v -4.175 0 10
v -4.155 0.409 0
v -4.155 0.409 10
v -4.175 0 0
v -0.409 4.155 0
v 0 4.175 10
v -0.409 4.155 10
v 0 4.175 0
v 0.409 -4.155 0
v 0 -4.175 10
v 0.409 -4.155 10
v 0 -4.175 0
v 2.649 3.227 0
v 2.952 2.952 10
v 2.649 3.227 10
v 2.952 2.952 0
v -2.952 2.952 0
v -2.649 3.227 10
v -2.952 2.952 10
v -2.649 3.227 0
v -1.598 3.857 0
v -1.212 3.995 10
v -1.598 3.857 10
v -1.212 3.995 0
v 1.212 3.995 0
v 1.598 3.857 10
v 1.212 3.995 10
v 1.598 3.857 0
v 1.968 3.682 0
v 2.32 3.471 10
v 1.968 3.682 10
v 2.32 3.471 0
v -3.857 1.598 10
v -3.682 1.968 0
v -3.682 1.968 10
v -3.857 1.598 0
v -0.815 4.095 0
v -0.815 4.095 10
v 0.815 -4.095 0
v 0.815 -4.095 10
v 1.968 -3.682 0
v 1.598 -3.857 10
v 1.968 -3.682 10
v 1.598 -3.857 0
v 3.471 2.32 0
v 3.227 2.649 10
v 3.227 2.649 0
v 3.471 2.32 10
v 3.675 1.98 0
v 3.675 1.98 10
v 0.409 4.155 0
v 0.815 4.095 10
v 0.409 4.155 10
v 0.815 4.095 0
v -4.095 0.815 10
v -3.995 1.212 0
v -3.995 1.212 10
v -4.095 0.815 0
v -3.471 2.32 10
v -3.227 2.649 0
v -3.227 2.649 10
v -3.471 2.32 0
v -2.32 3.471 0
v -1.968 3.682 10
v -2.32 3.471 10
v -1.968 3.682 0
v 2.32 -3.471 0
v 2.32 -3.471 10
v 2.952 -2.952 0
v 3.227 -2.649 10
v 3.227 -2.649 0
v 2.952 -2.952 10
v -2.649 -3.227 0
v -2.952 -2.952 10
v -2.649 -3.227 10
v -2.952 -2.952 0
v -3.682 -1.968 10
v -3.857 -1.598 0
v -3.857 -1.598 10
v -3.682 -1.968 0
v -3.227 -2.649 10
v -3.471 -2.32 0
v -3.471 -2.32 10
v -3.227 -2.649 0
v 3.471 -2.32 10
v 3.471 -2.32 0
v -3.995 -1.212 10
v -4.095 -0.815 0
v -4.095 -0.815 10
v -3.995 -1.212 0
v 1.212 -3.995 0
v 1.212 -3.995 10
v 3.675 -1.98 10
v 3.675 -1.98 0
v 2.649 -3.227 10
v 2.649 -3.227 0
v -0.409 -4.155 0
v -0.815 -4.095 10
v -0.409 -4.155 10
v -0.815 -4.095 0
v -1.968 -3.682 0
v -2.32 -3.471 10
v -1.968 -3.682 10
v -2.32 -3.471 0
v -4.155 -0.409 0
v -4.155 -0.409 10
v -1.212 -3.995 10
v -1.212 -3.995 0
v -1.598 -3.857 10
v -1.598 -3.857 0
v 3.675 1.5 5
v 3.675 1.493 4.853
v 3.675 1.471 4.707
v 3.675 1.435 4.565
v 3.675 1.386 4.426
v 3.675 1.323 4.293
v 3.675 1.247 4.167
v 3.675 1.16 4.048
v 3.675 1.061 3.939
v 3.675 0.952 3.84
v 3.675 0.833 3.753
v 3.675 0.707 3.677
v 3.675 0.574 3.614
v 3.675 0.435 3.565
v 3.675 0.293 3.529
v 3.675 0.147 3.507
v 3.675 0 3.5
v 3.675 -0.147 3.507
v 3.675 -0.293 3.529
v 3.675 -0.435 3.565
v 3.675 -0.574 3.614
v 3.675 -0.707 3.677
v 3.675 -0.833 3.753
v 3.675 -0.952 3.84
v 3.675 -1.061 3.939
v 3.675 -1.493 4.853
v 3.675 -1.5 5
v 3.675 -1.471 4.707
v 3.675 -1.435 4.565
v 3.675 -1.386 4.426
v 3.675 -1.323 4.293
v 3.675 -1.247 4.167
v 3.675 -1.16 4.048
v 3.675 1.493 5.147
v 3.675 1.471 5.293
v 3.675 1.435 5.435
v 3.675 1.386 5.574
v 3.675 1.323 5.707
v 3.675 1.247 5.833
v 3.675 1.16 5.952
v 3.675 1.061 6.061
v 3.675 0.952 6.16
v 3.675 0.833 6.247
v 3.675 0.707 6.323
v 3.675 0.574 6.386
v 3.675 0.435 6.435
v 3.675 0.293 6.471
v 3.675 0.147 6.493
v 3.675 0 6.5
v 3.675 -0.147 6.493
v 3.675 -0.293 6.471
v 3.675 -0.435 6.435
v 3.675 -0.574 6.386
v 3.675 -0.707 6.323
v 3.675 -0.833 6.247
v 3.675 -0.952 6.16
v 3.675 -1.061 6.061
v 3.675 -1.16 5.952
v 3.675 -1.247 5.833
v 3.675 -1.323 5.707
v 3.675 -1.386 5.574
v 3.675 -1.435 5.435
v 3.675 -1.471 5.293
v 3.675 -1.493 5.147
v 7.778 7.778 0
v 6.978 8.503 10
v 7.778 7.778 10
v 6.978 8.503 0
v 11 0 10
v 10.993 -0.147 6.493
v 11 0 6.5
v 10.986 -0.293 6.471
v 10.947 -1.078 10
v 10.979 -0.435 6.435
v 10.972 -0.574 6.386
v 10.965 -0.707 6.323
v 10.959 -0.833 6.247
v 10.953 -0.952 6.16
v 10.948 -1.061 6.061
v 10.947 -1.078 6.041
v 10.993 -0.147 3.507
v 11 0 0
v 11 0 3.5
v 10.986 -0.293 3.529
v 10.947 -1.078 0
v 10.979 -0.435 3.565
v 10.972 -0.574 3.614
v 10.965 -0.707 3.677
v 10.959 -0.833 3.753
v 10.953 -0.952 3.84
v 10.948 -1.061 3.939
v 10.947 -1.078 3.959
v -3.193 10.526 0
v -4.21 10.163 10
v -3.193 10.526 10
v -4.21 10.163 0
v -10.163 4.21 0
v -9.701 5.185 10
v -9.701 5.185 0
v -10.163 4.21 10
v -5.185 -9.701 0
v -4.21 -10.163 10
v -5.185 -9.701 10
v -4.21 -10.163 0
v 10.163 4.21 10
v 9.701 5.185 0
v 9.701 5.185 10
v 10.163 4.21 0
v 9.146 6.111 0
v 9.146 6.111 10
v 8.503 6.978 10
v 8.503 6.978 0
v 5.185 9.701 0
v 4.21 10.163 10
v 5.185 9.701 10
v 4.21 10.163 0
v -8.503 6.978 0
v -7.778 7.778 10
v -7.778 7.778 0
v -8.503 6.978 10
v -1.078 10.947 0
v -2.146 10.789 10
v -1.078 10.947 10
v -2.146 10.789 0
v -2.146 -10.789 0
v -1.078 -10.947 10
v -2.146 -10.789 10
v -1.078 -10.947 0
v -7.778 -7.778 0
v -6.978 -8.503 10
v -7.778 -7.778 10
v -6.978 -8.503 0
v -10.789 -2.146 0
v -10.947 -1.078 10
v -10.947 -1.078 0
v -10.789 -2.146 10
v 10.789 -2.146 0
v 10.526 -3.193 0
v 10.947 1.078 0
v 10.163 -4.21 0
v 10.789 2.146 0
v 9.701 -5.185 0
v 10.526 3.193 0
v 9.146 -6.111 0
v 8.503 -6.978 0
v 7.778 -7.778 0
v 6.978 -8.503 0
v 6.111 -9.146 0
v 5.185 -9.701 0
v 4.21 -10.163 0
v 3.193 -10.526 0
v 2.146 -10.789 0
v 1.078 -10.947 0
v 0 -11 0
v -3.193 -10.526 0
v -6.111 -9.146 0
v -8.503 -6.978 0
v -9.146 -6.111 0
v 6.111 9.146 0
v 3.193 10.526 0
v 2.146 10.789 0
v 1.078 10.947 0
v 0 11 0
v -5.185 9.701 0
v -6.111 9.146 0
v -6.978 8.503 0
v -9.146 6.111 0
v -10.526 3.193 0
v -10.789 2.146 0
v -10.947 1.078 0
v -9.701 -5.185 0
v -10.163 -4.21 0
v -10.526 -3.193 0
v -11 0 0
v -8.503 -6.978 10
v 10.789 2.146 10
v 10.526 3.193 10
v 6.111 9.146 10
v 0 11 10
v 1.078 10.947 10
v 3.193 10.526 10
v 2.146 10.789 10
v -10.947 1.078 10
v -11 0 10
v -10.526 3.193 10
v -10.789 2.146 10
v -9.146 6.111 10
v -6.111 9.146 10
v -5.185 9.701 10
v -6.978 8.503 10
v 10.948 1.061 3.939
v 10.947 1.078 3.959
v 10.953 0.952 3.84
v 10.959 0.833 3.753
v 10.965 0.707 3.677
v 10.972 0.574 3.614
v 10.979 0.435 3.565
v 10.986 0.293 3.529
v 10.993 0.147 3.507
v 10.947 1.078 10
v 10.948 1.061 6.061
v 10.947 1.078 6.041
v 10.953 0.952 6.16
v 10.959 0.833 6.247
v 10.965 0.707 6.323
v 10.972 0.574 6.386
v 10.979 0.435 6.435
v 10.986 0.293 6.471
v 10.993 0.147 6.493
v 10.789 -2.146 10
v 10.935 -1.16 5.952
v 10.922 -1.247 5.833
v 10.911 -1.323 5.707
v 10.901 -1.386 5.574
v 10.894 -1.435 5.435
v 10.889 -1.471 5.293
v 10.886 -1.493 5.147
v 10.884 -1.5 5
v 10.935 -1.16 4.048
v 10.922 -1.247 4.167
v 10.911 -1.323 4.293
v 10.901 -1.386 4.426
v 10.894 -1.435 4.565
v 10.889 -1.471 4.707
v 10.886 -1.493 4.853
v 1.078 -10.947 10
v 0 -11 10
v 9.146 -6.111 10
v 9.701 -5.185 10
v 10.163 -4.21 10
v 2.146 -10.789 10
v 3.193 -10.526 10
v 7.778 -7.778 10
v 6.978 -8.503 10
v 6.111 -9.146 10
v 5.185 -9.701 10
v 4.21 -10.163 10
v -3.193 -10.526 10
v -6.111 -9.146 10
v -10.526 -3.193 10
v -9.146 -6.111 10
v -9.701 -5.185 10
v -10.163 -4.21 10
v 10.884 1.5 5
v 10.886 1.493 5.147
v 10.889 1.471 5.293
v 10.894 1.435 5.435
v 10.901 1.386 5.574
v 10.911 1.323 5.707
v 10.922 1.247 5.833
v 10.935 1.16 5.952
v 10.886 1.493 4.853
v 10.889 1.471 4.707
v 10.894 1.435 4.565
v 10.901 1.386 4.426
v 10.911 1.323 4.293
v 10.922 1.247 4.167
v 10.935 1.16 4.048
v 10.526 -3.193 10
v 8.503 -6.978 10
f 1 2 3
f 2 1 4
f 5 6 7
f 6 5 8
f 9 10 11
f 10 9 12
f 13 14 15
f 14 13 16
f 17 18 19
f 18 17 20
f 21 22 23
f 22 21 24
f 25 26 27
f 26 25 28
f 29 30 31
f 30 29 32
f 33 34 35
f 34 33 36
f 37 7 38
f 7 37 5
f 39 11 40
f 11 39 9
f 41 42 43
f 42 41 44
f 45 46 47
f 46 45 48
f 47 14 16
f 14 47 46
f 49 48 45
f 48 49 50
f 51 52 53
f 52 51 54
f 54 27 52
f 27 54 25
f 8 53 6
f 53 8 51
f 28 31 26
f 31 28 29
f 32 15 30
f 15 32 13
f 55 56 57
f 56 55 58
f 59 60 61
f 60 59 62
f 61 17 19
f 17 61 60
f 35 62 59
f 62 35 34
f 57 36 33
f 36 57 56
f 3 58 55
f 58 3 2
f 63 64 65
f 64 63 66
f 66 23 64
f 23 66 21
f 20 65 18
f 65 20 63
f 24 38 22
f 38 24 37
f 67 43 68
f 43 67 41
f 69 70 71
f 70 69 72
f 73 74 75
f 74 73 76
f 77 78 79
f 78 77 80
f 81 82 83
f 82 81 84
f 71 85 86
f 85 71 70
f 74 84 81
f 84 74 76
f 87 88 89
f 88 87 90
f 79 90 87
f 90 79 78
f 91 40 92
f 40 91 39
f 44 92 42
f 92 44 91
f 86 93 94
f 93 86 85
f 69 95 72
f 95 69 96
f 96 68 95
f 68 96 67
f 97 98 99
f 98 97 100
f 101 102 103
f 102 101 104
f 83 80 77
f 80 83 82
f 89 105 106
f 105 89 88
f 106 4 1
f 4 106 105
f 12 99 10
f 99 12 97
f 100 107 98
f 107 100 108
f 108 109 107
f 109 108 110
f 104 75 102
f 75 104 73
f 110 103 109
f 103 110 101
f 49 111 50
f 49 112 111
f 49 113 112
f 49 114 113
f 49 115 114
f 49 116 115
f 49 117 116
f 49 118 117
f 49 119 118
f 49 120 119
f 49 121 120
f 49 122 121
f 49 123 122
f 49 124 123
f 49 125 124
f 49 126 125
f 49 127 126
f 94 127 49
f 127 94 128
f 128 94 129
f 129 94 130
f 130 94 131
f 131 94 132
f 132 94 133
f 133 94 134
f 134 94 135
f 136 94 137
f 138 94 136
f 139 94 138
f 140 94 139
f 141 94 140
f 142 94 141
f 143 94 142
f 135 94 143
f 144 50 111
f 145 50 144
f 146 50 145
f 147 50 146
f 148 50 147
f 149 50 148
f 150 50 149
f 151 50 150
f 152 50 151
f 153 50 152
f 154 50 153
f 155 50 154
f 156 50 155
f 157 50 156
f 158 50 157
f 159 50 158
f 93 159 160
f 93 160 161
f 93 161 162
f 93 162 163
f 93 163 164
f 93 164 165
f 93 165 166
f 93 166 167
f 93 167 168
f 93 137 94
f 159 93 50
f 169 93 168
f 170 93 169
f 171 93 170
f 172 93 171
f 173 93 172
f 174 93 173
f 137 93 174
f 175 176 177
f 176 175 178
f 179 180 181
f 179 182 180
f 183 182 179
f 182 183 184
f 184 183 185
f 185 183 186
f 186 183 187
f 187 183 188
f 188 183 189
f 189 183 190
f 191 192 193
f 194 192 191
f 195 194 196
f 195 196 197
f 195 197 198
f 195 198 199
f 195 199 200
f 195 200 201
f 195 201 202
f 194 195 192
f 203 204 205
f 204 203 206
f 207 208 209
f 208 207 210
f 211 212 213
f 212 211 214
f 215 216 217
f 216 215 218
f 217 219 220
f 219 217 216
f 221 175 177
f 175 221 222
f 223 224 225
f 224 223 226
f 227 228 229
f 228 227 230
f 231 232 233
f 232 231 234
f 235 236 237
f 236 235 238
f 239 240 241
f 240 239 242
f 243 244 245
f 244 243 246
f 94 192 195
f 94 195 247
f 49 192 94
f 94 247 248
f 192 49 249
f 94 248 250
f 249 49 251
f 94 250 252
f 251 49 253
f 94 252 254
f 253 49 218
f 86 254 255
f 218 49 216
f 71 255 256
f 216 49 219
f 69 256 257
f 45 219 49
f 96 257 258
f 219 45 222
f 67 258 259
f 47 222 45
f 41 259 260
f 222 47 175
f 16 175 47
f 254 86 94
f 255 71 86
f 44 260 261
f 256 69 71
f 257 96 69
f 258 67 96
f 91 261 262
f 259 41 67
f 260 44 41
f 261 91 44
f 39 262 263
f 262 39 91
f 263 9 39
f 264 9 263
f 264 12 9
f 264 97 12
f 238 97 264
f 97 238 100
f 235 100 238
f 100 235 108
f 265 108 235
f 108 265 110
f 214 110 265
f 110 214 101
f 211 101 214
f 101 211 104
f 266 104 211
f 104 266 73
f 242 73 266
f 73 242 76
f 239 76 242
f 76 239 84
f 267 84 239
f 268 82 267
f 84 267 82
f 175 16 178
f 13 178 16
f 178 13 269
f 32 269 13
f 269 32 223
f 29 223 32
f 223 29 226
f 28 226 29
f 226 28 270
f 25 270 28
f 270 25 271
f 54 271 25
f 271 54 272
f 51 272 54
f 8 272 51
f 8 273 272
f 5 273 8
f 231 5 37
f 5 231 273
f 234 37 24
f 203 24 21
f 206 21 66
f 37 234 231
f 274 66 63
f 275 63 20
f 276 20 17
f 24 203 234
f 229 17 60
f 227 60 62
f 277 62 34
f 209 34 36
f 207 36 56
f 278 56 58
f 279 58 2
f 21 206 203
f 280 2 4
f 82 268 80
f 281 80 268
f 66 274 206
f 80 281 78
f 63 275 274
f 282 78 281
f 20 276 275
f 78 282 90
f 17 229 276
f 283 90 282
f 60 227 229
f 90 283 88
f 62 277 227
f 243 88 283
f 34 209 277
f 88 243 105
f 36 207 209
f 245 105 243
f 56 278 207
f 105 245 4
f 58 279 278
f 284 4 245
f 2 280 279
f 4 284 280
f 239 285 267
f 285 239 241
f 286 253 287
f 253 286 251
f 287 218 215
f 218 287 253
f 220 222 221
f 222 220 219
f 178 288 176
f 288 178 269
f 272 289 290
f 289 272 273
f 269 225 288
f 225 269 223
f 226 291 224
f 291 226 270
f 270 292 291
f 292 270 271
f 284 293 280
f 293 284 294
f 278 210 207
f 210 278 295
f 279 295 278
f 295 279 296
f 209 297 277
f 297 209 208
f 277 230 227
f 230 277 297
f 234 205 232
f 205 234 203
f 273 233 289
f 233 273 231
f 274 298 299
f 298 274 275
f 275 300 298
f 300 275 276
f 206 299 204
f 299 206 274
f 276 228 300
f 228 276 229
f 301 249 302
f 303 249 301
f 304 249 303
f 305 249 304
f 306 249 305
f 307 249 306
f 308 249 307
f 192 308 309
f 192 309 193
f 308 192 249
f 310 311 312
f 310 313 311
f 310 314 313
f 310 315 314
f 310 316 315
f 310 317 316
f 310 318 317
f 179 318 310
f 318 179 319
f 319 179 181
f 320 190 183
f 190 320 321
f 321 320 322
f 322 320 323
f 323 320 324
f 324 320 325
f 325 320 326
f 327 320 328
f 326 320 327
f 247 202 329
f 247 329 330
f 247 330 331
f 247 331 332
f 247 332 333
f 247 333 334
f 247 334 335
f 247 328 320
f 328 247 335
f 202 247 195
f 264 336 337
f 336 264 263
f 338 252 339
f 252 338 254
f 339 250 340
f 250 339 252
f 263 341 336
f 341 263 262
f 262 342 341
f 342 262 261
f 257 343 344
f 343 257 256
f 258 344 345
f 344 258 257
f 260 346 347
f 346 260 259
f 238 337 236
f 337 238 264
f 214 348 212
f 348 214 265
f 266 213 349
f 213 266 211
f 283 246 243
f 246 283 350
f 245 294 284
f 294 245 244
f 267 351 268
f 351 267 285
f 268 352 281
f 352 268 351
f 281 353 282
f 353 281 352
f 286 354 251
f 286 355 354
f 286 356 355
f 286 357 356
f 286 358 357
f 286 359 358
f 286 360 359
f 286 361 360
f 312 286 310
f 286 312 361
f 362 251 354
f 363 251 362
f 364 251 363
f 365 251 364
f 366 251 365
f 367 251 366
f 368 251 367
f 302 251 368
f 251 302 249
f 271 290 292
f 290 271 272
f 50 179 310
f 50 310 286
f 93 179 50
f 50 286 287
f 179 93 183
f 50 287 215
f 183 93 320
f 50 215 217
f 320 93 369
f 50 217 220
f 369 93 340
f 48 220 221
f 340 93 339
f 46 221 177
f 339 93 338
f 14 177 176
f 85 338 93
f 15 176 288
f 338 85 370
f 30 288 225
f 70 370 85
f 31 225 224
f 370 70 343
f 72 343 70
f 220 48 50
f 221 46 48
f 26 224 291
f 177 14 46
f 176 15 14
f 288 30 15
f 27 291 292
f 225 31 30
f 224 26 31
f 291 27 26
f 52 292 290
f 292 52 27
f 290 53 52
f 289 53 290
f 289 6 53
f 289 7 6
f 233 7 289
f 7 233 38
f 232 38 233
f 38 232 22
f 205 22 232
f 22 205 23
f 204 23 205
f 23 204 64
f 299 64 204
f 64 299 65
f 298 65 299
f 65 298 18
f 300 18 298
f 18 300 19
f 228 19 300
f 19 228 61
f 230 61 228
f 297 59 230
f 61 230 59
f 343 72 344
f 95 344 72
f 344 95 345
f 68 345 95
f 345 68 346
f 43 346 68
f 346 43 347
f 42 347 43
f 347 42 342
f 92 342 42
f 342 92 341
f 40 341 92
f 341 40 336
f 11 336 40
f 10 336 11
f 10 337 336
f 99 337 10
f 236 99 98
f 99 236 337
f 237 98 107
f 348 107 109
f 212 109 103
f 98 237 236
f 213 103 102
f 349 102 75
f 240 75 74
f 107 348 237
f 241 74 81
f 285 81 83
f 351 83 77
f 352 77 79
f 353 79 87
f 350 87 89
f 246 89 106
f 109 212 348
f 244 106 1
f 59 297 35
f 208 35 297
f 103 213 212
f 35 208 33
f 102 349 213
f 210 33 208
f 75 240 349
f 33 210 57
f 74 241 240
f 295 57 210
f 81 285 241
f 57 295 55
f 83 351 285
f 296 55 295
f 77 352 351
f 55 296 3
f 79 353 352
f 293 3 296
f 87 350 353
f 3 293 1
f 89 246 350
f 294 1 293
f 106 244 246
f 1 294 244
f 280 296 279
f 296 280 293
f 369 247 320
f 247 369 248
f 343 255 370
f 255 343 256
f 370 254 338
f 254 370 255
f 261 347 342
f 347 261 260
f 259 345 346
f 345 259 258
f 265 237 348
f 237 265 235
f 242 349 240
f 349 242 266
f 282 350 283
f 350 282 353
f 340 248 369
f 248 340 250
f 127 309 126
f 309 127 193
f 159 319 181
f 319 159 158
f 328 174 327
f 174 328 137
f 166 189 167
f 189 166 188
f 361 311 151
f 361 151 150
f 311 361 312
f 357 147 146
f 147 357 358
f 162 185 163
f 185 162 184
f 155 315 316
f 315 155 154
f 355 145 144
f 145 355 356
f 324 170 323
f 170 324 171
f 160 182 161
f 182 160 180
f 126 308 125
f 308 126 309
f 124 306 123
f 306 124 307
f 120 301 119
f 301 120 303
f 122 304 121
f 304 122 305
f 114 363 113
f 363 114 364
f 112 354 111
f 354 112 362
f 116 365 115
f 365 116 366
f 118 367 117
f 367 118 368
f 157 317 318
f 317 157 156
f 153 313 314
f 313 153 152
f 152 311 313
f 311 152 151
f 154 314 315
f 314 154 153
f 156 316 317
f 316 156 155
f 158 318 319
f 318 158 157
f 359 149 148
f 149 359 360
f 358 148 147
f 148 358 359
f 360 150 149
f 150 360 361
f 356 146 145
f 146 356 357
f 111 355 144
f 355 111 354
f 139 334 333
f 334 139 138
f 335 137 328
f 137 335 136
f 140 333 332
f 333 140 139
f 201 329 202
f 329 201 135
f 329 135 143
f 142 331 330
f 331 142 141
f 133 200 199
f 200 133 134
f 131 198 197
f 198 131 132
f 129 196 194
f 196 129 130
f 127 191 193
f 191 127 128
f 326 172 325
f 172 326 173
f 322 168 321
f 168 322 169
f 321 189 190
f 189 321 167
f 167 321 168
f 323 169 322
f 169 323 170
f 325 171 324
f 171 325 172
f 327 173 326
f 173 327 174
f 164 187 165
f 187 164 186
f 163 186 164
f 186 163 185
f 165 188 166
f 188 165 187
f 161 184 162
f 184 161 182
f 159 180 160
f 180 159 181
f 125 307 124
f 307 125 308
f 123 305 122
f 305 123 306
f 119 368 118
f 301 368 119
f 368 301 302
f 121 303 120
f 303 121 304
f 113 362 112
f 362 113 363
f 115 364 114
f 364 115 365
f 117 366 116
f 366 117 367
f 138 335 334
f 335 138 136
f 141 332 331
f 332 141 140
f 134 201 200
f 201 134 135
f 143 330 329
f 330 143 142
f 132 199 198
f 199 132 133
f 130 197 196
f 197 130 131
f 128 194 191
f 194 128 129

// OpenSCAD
// Gen-DA — shaft collar with D-flat bore (set screw bears on the flat); print x4
include <parameters.scad>;
$fn = 64;
// D-flat keyed bore: flat faces +X (angle 0 = magnet pocket 0 = index notch)
module dflat_bore(h) {
    intersection() {
        cylinder(d=shaft_bore, h=h);
        translate([-shaft_bore, -shaft_bore, 0]) cube([shaft_bore + dflat_x, 2*shaft_bore, h]);
    }
}

od = 22; h = collar_h; set_d = 3.0;
difference() {
    cylinder(d=od, h=h);
    translate([0, 0, -0.1]) dflat_bore(h + 0.2);
    translate([0, 0, h/2]) rotate([0, 90, 0]) cylinder(d=set_d, h=od);
}
